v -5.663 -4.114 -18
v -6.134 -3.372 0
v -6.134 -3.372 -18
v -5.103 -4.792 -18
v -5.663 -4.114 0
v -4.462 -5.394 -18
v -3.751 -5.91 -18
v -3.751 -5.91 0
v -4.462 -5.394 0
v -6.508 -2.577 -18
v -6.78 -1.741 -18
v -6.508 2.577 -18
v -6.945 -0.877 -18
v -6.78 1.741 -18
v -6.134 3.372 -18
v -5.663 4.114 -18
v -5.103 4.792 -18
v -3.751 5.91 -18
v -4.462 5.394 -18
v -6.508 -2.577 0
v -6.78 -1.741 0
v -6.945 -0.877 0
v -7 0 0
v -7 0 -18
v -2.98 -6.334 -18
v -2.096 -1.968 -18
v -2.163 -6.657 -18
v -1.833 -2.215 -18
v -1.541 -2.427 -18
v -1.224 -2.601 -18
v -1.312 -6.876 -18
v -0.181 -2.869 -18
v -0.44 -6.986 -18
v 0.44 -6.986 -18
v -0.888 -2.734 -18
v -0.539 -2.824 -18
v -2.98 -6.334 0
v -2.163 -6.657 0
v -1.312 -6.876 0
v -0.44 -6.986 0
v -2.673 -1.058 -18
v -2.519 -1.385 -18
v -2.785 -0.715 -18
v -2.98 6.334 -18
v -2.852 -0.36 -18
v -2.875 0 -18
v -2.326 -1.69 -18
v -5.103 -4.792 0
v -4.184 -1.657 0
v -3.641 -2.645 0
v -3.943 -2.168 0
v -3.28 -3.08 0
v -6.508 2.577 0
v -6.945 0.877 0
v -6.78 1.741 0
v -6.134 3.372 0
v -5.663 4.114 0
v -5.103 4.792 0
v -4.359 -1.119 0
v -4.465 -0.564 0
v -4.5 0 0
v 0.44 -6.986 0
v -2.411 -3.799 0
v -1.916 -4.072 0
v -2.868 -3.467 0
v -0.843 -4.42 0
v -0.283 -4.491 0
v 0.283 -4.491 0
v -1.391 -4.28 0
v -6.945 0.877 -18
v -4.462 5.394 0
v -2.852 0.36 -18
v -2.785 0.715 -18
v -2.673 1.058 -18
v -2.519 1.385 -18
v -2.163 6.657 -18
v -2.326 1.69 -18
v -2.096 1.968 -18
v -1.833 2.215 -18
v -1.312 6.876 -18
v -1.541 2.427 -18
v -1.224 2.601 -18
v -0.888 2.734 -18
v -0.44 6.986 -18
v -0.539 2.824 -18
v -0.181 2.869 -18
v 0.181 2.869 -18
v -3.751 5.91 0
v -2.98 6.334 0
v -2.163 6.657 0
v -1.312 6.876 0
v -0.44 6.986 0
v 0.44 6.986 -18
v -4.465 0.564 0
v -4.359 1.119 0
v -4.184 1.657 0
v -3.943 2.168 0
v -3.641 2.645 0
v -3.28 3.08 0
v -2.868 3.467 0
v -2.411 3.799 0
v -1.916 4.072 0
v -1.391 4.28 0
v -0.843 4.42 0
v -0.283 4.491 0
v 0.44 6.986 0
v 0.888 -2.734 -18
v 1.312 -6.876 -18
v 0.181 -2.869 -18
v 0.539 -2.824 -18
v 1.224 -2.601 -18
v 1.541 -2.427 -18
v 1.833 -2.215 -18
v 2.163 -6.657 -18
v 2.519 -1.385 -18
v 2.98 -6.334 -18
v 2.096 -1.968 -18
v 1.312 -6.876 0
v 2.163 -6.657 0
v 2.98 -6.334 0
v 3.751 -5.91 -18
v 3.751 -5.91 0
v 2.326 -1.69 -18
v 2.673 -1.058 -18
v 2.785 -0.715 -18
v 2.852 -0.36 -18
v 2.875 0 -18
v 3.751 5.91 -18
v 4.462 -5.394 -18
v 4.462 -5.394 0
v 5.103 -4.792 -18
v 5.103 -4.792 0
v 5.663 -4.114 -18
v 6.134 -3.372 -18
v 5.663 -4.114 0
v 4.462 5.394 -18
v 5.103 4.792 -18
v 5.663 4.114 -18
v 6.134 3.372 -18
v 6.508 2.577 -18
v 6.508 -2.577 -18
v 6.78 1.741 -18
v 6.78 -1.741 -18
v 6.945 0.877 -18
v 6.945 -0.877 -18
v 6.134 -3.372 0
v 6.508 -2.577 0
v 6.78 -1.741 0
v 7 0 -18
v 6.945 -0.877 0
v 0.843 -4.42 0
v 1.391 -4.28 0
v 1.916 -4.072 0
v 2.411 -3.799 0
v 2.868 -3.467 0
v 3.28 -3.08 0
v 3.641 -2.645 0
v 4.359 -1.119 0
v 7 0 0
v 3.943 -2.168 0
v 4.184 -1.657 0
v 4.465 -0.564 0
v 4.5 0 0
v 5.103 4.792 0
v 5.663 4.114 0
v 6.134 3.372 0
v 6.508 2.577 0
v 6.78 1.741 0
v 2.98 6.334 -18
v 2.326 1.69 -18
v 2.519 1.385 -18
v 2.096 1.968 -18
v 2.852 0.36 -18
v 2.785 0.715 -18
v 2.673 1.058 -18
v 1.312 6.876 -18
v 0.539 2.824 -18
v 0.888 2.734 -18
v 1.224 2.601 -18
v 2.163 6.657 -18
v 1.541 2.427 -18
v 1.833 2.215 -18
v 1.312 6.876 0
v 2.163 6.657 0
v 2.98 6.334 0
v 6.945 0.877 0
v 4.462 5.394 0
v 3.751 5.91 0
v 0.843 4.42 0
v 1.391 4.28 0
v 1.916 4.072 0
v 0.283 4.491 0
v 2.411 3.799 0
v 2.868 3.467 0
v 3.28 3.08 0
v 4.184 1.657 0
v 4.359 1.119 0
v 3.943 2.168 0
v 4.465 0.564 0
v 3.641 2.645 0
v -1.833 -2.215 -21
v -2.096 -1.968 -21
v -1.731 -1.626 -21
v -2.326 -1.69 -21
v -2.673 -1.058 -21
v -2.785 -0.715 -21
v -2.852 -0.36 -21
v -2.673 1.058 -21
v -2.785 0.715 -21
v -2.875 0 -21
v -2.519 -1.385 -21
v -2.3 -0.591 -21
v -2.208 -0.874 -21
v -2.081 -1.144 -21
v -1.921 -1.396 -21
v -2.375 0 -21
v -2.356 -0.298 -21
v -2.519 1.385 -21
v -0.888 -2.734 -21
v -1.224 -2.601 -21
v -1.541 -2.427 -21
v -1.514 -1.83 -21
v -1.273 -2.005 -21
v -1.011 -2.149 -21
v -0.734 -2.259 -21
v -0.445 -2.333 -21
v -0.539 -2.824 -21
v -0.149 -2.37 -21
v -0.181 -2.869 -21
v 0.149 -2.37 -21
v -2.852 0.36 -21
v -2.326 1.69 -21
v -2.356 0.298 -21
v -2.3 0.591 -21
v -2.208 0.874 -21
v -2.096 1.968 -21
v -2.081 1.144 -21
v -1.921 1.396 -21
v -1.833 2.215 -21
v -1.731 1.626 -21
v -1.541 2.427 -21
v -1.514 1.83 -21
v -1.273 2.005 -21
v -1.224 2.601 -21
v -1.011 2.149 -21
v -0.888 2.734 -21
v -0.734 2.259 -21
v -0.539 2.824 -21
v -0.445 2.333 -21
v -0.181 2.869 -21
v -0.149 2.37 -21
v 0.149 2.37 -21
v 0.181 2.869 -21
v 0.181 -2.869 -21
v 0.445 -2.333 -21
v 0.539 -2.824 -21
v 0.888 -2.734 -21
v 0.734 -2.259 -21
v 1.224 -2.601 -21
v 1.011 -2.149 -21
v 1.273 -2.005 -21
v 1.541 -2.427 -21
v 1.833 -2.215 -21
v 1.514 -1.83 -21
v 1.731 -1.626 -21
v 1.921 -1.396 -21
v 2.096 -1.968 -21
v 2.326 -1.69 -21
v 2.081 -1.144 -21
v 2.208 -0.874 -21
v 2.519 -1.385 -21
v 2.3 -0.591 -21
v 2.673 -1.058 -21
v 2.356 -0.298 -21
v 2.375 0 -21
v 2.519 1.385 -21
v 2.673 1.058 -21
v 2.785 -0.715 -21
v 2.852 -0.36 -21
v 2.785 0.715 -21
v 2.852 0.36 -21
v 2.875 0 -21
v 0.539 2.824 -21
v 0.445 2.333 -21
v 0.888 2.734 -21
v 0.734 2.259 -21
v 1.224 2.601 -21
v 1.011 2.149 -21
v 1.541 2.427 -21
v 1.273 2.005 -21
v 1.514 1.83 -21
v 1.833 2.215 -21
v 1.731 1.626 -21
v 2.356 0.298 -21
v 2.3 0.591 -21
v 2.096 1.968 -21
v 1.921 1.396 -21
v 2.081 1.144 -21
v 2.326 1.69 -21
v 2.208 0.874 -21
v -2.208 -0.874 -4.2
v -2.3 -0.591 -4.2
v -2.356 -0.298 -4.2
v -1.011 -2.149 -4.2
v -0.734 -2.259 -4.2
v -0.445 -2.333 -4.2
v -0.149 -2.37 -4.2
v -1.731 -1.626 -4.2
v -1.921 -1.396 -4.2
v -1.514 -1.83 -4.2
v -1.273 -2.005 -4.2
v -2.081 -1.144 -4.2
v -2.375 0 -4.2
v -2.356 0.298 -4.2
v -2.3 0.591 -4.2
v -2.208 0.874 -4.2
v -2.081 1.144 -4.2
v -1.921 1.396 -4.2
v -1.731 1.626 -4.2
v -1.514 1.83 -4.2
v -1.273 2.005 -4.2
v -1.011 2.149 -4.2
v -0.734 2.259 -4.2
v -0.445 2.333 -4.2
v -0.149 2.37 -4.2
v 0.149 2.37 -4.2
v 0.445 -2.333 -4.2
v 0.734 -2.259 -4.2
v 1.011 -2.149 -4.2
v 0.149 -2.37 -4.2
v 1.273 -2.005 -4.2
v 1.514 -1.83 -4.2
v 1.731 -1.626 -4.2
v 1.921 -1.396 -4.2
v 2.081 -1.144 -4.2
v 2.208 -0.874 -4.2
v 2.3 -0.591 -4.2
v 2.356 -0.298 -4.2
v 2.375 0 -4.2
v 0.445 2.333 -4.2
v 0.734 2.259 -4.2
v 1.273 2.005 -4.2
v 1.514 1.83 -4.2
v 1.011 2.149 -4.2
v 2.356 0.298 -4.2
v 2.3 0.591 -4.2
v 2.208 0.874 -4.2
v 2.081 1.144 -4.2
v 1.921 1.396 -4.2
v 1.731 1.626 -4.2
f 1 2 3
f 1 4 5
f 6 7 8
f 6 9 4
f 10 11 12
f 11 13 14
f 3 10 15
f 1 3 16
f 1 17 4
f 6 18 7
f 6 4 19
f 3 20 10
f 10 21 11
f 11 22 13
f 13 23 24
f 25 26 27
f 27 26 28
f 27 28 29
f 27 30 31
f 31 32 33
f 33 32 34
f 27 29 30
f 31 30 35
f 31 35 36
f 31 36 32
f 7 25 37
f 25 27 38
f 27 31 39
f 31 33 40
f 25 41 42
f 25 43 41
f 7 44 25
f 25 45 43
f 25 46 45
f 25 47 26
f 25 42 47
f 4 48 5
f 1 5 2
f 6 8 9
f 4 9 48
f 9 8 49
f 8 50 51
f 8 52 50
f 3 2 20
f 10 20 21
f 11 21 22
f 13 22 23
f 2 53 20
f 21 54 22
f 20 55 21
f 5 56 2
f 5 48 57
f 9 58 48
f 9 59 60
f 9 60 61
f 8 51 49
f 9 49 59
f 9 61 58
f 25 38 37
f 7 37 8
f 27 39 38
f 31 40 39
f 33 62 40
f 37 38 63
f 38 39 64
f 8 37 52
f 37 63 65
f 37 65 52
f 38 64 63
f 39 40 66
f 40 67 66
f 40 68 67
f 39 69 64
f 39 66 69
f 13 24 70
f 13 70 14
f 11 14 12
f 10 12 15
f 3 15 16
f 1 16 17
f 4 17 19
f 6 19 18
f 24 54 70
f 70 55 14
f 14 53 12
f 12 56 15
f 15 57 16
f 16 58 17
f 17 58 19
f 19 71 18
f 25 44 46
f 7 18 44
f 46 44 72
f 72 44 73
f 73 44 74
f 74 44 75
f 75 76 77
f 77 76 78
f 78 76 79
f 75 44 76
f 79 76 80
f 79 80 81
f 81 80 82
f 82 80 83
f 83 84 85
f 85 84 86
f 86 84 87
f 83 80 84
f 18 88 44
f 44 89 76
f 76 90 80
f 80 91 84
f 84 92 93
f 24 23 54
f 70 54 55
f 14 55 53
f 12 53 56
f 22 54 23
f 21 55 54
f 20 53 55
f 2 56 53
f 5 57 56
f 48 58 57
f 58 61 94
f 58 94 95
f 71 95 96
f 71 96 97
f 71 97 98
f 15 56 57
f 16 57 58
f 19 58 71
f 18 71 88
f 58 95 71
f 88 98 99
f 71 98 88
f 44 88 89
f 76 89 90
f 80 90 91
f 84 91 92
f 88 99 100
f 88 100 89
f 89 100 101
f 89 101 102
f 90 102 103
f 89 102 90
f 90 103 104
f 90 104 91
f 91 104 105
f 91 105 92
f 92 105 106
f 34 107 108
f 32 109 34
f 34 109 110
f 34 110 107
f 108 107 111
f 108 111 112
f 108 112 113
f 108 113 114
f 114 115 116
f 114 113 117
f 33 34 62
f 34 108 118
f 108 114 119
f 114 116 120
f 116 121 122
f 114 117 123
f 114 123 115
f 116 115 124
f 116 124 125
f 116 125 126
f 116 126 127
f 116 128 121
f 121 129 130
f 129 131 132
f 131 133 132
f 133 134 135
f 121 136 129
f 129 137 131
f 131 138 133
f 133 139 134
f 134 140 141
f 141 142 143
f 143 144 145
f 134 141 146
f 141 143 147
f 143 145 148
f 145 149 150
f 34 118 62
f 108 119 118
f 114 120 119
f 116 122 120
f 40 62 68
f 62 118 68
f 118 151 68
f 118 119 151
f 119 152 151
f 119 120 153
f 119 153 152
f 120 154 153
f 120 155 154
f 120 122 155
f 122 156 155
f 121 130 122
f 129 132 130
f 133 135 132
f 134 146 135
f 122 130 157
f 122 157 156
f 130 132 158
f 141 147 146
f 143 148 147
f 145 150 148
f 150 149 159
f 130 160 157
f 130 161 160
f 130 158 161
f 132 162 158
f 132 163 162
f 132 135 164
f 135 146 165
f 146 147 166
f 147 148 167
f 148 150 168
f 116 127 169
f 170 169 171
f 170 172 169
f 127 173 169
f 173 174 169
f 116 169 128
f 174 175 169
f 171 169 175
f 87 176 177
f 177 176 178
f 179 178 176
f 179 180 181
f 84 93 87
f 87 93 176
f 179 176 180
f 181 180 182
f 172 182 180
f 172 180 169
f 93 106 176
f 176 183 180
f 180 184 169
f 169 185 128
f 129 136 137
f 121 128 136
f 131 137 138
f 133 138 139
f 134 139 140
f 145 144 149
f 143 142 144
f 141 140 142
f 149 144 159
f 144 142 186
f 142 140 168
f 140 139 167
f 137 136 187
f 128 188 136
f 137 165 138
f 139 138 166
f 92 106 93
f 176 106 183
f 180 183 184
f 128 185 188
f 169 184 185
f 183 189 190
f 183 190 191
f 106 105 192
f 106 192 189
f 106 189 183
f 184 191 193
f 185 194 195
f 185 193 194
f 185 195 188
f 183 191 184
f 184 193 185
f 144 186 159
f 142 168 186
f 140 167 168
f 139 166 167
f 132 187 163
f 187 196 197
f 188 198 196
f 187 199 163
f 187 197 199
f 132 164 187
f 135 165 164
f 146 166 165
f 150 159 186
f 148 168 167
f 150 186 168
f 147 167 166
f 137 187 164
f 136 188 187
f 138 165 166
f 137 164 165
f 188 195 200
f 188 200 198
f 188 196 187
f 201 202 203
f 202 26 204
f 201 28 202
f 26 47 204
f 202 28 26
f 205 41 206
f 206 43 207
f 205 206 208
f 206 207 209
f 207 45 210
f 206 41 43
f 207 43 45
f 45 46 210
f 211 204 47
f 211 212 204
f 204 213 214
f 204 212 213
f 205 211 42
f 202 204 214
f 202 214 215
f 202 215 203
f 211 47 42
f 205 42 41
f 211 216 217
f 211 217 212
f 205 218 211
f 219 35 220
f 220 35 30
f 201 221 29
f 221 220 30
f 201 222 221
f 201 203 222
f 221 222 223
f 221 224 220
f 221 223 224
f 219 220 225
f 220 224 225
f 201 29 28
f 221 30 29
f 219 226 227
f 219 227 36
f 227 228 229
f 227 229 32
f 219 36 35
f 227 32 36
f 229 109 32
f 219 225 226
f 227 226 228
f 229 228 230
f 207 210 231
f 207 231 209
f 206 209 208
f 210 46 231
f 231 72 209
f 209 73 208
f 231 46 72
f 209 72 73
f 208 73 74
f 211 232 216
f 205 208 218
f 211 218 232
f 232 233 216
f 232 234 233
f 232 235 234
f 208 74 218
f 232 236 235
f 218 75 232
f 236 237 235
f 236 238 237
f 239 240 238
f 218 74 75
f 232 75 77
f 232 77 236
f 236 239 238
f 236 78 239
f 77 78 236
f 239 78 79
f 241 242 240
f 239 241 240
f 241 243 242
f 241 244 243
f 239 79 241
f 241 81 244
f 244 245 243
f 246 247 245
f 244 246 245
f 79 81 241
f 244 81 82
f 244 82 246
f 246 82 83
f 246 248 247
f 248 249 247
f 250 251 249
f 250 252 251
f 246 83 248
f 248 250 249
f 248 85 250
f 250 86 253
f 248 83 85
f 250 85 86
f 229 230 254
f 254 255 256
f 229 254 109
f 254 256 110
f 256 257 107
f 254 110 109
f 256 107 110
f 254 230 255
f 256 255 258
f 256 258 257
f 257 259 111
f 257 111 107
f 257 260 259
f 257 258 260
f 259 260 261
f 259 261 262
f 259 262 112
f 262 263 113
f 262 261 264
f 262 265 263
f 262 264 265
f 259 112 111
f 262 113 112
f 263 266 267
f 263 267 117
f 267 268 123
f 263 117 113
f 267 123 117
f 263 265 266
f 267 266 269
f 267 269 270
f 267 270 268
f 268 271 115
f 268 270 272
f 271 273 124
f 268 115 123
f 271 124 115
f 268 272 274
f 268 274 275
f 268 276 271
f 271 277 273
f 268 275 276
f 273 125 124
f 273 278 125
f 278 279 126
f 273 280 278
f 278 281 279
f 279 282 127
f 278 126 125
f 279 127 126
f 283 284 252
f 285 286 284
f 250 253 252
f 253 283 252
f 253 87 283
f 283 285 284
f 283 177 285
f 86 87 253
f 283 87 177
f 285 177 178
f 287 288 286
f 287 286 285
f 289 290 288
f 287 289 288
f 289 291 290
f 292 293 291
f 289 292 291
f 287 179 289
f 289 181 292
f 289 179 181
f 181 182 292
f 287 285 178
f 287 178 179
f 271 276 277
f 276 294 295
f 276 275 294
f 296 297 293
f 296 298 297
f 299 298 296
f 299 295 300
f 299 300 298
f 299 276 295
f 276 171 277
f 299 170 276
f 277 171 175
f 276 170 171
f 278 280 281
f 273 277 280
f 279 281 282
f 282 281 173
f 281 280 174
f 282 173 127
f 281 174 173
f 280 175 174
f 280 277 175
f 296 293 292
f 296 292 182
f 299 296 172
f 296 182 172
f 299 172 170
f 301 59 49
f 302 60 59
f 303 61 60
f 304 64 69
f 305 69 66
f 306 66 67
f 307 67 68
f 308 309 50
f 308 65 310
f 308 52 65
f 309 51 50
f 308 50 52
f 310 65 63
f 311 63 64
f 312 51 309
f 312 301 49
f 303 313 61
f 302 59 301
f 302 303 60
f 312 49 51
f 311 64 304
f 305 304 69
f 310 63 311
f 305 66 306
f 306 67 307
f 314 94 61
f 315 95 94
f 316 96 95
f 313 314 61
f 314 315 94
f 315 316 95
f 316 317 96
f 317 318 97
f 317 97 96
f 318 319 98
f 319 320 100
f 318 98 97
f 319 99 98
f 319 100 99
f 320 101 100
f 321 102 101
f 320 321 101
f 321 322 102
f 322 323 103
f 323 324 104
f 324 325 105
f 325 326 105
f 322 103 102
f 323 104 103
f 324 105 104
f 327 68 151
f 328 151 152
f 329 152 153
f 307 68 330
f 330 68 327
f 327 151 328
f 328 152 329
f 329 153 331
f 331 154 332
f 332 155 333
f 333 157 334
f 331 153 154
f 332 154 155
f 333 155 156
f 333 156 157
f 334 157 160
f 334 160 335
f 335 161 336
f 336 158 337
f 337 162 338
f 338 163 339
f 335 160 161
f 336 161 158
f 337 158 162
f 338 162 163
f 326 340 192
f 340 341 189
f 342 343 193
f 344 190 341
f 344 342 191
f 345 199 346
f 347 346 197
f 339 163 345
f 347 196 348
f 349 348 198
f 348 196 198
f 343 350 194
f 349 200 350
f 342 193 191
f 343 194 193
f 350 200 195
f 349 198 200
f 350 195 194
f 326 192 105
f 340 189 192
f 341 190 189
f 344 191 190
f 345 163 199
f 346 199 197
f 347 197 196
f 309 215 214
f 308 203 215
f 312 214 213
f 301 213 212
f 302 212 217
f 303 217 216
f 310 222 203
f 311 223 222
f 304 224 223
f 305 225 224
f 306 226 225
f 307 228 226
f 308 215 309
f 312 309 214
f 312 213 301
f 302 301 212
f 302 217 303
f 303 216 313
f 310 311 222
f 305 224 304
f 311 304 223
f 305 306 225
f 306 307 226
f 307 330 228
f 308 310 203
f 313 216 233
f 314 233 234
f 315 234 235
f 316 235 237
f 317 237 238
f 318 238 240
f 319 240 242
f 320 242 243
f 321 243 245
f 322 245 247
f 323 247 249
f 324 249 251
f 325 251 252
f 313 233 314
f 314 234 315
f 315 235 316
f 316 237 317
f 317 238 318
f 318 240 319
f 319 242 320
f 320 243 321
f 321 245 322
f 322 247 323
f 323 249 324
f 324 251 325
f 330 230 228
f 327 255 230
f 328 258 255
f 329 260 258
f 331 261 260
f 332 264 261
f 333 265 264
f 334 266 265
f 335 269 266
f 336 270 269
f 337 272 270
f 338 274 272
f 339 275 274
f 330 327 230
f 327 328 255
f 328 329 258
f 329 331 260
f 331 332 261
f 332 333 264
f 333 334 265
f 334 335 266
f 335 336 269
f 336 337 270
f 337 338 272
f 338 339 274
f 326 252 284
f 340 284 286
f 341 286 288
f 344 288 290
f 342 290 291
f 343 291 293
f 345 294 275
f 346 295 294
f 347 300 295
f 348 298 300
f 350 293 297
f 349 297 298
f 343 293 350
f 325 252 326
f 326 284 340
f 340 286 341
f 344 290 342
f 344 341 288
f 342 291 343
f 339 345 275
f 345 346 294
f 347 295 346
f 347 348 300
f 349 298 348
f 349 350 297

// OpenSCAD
$fn = 50;

difference() {
	union() {
		translate(v = [0, 0, -18.0]) {
			cylinder(h = 18, r = 7.0);
		}
		#translate(v = [0, 0, -21.0]) {
			cylinder(h = 21, r = 2.875);
		}
	}
	union() {
		translate(v = [0, 0, 0]) {
			rotate(a = [0, 0, 0]) {
				difference() {
					union() {
						translate(v = [0, 0, -21.0]) {
							cylinder(h = 21, r = 2.25);
						}
						translate(v = [0, 0, -4.2]) {
							cylinder(h = 4.2, r1 = 2.375, r2 = 4.5);
						}
						translate(v = [0, 0, -21.0]) {
							cylinder(h = 21, r = 2.375);
						}
						translate(v = [0, 0, -21.0]) {
							cylinder(h = 21, r = 2.25);
						}
					}
					union();
				}
			}
		}
	}
}
